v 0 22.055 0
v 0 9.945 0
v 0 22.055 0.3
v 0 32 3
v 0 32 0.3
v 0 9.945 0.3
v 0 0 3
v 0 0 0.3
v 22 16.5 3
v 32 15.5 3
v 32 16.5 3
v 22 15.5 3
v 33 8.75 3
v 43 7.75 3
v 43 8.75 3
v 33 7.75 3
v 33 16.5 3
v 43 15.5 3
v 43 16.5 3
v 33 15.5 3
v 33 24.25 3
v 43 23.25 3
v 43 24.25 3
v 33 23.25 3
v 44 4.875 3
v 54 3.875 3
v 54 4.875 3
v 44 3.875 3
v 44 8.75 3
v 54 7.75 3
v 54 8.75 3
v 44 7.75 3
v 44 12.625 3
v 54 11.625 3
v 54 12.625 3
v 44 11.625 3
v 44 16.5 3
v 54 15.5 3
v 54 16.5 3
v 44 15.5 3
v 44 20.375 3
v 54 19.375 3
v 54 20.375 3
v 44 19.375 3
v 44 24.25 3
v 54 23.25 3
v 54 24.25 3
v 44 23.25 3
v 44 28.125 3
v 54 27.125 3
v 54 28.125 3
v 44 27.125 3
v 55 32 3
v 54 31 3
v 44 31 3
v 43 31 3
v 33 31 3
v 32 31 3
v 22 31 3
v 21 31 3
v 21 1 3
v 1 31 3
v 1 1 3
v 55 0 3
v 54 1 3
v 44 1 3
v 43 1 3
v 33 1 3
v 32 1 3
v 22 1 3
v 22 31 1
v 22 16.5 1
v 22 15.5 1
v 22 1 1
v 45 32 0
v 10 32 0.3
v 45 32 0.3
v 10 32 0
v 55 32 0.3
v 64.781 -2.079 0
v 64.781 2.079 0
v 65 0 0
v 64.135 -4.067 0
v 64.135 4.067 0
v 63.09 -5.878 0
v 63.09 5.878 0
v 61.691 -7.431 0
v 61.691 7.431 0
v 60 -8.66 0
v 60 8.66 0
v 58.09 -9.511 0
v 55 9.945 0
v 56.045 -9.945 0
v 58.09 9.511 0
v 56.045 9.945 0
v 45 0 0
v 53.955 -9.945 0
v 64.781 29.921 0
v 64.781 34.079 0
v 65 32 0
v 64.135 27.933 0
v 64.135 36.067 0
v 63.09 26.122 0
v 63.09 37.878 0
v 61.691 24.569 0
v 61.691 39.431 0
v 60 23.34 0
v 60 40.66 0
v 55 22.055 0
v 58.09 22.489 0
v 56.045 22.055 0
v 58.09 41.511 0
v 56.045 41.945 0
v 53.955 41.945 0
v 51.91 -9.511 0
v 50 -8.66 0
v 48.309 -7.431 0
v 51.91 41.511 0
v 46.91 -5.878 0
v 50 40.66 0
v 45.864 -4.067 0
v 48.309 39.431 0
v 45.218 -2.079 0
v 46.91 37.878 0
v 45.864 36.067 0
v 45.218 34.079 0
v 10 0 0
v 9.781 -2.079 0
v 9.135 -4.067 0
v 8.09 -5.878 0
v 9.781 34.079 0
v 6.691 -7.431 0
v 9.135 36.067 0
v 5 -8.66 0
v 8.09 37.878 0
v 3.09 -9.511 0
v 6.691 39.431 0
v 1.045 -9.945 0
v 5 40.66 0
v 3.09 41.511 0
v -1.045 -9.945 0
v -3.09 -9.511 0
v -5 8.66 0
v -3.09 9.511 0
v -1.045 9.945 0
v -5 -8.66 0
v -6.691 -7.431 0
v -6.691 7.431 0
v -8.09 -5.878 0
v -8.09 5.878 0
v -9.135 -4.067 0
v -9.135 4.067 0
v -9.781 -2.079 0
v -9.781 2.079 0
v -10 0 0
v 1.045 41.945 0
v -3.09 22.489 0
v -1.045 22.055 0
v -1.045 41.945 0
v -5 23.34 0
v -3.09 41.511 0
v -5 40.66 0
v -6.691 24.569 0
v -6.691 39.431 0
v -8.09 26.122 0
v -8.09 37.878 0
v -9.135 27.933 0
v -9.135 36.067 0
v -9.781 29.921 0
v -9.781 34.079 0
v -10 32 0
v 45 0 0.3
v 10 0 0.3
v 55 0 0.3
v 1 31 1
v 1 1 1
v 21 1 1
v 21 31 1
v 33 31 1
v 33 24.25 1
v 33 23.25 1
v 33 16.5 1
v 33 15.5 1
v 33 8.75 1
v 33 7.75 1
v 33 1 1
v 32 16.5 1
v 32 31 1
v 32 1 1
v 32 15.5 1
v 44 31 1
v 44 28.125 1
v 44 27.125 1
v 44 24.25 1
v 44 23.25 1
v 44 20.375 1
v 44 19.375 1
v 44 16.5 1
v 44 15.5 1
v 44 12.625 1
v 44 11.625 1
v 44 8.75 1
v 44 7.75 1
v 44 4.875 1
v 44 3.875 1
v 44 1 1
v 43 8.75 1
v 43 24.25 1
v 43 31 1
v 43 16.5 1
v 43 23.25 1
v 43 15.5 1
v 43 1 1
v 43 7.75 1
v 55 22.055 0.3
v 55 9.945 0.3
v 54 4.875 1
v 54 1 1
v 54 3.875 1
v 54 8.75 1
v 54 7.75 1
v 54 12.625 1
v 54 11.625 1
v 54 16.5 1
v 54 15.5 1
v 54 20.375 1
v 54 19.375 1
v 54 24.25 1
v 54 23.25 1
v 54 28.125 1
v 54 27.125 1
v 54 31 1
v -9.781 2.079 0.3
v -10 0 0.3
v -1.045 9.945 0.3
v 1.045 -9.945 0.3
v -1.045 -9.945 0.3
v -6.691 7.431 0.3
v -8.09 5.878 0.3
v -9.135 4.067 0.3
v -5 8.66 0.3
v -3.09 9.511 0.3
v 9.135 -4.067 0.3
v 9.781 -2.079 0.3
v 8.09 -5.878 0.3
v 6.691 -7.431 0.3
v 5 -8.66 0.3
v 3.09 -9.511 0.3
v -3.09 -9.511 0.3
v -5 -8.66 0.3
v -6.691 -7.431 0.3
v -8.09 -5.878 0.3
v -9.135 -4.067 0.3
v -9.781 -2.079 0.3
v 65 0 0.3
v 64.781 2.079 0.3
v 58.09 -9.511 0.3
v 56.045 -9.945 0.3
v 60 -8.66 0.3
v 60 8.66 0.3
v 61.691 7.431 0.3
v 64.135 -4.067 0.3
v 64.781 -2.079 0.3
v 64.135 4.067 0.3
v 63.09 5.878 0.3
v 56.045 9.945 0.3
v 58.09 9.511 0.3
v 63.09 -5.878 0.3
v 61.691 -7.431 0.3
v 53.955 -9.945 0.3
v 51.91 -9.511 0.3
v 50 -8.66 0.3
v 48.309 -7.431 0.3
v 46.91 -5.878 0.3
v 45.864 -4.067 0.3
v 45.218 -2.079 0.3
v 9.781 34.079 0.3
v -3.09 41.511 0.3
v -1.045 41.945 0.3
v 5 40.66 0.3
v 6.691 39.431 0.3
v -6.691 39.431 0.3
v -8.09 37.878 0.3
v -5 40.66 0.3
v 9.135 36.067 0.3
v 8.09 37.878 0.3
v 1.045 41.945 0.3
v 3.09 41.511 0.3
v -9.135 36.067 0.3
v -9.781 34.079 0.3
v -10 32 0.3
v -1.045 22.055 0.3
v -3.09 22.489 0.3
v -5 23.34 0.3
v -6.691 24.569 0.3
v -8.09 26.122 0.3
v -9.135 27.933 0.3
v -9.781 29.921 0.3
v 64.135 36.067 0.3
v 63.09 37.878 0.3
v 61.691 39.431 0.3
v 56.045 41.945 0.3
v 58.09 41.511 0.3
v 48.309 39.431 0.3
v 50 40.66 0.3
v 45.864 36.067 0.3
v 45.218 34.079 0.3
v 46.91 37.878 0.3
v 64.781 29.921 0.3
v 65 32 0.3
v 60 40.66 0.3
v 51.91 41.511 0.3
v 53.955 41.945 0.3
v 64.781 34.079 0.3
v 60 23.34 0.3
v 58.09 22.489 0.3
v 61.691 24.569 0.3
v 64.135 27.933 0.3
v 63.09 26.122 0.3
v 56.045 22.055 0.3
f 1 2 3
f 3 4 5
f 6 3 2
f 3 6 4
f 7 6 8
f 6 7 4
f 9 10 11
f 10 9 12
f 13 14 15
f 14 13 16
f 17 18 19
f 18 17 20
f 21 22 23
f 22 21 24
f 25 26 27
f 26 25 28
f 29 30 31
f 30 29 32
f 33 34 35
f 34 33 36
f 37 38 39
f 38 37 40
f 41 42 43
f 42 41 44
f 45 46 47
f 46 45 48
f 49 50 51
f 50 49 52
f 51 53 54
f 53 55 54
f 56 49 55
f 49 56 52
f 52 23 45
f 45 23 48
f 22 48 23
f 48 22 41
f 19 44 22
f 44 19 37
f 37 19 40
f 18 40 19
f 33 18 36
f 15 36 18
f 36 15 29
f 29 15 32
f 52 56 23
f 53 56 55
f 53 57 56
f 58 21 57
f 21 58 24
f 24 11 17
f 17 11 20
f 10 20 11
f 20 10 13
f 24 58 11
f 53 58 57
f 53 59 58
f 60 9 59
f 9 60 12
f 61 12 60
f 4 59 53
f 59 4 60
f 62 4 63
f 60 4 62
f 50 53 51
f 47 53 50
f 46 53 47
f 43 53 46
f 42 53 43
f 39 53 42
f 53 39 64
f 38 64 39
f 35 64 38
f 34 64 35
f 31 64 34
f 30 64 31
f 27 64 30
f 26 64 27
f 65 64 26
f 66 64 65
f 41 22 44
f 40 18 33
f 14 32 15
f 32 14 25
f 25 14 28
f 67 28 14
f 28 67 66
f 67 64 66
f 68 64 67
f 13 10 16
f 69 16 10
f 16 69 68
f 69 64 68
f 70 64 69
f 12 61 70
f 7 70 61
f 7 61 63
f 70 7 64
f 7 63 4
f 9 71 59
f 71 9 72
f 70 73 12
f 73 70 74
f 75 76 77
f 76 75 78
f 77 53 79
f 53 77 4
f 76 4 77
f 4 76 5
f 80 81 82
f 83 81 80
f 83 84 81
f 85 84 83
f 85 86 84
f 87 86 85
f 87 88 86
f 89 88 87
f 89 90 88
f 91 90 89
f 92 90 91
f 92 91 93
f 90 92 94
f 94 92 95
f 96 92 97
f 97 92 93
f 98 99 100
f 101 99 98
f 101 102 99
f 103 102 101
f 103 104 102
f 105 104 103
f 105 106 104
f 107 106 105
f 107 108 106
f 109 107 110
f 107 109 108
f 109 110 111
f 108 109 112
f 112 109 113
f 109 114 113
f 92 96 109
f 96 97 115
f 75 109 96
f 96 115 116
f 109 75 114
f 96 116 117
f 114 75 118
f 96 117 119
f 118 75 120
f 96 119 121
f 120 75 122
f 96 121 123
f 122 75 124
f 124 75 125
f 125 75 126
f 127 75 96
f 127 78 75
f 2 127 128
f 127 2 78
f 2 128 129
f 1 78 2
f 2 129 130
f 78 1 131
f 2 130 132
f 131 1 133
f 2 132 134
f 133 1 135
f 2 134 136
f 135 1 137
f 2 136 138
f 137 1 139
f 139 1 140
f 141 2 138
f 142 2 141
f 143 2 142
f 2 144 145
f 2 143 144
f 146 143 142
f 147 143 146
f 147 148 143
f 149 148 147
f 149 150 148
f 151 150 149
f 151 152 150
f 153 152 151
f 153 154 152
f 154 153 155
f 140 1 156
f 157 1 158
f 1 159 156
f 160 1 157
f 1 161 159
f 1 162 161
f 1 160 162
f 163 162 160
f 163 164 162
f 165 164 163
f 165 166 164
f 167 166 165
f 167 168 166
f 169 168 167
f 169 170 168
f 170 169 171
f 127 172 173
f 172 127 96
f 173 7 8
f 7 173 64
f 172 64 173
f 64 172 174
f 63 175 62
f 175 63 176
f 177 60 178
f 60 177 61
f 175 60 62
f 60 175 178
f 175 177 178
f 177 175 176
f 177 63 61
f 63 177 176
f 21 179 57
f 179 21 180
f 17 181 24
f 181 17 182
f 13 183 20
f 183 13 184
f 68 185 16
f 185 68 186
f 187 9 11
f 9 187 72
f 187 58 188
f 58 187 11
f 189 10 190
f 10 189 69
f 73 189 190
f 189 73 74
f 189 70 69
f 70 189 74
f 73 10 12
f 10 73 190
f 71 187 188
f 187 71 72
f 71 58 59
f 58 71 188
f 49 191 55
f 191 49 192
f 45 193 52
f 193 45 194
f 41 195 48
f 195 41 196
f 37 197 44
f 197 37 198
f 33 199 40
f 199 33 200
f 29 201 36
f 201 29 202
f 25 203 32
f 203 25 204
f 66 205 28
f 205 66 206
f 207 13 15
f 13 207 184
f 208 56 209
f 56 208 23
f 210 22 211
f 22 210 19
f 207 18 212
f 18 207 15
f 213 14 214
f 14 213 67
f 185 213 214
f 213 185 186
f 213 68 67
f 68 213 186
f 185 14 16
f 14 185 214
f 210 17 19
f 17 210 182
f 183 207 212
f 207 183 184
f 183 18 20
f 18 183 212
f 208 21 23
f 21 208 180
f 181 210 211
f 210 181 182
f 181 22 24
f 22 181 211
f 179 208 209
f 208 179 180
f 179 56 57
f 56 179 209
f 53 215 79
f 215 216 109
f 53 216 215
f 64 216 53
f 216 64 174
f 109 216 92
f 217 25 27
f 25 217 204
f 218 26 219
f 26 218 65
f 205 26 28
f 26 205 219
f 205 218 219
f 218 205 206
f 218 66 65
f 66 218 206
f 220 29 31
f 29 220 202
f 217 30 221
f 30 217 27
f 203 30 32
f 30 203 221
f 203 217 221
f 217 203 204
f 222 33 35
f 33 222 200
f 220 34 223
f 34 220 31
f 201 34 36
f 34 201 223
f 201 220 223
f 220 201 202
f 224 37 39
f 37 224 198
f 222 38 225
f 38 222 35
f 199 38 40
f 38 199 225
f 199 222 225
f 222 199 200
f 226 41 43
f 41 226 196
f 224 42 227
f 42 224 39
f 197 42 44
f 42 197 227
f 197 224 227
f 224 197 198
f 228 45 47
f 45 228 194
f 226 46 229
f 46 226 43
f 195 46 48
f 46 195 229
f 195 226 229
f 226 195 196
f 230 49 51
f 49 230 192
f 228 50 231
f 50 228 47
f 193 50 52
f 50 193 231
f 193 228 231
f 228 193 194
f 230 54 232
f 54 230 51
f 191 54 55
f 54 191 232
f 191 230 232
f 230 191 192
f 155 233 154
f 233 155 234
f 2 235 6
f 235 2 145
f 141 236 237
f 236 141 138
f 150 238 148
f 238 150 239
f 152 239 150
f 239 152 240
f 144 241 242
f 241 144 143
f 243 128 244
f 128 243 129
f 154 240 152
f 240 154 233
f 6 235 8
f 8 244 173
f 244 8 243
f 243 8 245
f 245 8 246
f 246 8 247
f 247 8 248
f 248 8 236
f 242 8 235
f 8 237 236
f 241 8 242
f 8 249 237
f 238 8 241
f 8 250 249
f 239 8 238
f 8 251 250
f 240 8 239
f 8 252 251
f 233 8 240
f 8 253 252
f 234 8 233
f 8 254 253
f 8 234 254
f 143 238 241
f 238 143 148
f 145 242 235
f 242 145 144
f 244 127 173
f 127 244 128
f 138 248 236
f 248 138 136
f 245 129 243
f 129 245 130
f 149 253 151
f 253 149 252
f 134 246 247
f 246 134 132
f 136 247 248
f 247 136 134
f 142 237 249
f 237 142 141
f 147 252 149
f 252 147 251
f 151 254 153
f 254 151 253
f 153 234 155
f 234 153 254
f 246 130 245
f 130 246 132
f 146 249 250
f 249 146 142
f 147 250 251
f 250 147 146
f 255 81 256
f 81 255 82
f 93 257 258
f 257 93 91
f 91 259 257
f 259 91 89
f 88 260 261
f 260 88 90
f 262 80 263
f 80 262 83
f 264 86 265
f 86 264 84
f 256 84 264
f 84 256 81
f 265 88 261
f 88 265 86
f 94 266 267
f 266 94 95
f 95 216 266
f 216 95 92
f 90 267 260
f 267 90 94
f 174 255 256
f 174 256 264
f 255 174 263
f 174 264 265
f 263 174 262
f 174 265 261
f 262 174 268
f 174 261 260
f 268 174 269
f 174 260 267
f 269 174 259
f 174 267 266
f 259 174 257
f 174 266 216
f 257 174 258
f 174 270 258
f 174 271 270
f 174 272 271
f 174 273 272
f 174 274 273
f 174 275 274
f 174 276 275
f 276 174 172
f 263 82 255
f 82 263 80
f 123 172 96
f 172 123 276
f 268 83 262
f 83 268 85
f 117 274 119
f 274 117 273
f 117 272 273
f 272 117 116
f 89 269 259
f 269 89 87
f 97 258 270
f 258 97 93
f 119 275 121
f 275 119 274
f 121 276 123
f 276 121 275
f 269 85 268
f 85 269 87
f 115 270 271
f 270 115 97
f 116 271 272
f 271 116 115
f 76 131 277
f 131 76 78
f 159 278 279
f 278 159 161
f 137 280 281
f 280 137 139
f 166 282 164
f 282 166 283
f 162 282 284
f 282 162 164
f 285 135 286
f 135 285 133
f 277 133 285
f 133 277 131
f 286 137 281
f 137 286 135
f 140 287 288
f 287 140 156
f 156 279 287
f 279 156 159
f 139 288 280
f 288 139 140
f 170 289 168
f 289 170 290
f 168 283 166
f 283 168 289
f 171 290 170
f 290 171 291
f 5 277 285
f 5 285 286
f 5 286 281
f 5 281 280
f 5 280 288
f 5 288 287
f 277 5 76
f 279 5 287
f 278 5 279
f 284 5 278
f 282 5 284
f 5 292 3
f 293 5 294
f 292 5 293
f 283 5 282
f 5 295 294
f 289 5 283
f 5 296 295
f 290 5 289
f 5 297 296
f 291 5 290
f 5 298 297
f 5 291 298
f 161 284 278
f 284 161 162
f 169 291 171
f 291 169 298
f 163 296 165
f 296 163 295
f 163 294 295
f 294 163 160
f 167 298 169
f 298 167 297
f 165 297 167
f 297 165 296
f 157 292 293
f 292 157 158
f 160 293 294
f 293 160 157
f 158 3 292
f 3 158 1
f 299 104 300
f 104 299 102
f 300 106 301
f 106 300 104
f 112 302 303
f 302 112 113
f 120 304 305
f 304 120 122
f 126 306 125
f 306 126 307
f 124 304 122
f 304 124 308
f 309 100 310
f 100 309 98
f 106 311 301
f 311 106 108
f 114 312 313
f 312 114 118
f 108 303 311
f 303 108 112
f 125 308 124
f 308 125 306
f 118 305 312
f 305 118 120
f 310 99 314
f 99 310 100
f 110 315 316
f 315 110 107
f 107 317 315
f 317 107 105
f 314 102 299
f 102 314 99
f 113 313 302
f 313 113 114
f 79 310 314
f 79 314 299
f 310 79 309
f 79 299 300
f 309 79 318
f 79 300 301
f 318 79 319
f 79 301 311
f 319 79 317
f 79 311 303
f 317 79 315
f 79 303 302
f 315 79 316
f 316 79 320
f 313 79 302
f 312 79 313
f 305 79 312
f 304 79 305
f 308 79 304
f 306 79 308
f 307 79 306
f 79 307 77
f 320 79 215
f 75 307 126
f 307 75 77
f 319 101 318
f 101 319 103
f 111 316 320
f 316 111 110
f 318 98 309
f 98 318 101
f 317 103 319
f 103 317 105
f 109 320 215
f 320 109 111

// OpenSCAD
// file: inc/VectorMath_v2.scad
// VectorMath.scad
// Version 2
VectorMathVersion=2;
// Released to the Public Domain

// maxv  - return the maximum element in a vector
// usage   maxv(a-vector
//             <,<m=>a-minimum-start-value default=big-negative>  {usually not used}
//             <,<s=>a-working-variable-for-recursion-maybe-useful-to-start-later-in-vector-?>)
//				{zero based elements}
// example maxv([3,7,4,9,1,8]);  // = 9      maxv([-100,-50,5,-30]);  // = 5
function maxv(v,m=-999999999999,s=0) = (s==len(v) ? m : (m>v[s] ? maxv(v,m,s+1) : maxv(v,v[s],s+1)));


// minv  - return minimum element in a vector
// usage   minv(a-vector
//             <,<m=>a-maximum-start-value default=big-number>  {usually not used}
//             <,<s=>a-working-variable-for-recursion-maybe-useful-to-start-later-in-vector-?>)
//				{zero based elements}
// example minv([3,7,4,9,1,8]);  // = 1      minv([-100,-50,5,-30]);  // = -100
function minv(v,m=999999999999,s=0) = (s==len(v) ? m : (m<v[s] ? minv(v,m,s+1) : minv(v,v[s],s+1)));


// sumv  - sum the elements in a vector, up to an element #, or optionaly start at element #
// usage   sumv(a-vector)
//            
// example sumv([10,20,30,40]); // = 100   
//function sumv(v,i=0) = (i==len(v) ? 0 : v[i] + sumv(v,i+1));
function sumv(v,i,s=0) = (i==s ? v[i] : v[i] + sumv(v,i-1,s));

// sumvmin - sum the elements of a vector, but sum a minimum value
//           ie any element less than Min use Min instead
// usage     sumvmin(a-vector
//			       <,<l=>sum-to-this-element>   {use len(v)-1 for all}
//                 <,<s=>starting-element default=0>
//				   <,<m=>minimum-element-value>);  
//                  {zero based elements}
// example sumvmin([3,7,4,9,1,8],m=4); // = 36
//function sumvmin(v,l=0,s=0,m=-999999999999) = (s==len(v) ? 0 : ((l!=0 && s>l) ? 0 : max(v[s],m) + sumvmin(v,l,s+1,m)));
function sumvmin(v,l=0,s=0,m=-999999999999) = (l==s ? max(v[l],m) : max(v[s],m) + sumvmin(v,l,s+1,m));
// sumvmax - sum the elements of a vector, but sum a maximum value
//           ie any element greater than max use max instead
// usage     sumvmax(a-vector
//			       <,<l=>sum-to-this-element>	{use len(v)-1 for all}
//                 <,<s=>starting-element default=0>
//				   <,<m=>maximum-element-value>);  
//                  {zero based elements}
// simple call sumvmin(v,m=minimim);
// example sumvmax([3,7,4,9,1,8],m=7); // = 29
function sumvmax(v,l=0,s=0,m=-999999999999) = (l==s ? min(v[l],m) : min(v[s],m) + sumvmax(v,l,s+1,m));

// test VectorMath - next is normally 0 but can be set to 1 for testing
VectorMathTest=1;
if (VectorMathTest==1) TestVectorMath();

module TestVectorMath() {
	// 0,1,2,3,4,5 element #
	v=[7,3,9,3,5,6];
	//v=[[10,20],[30,40],[50,60]];
	vl=len(v);
	tot=0;
	echo(v, vl);
	echo("sum",sumv(v));
	echo("sum",sumv(v,vl-1));
	for (i= [0 : vl-1]) {
		echo("sum first",i,"elements",sumv(v,i));	
	}
	echo("sum 1-2",sumv(v,2,1));
	echo("sum 2-4",sumv(v,4,2));
	echo("sum 4-5",sumv(v,5,4));

	echo("max",maxv(v));
	echo("min",minv(v));

	echo(sumv([10,20,30,40],2)); // = 60      
	echo(sumv([10,20,30,40],3,2)); // = 70

	echo("sumvmin 5",sumvmin(v,vl-1,m=5));
	echo("sumvmin 2-4",sumvmin(v,4,2,5));
	echo("sumvmin([3,7,4,9,1,8],m=4)",sumvmin([3,7,4,9,1,8],vl-1,m=4));
	
	for (i = [0 : vl-1]) {
		echo("sumvmin first",i,"elements", sumvmin(v,i,m=4));
	}

	echo("sumvmax 7",sumvmax(v,vl-1,m=7));
	echo("sumvmax([3,7,4,9,1,8],m=7)",sumvmax([3,7,4,9,1,8],vl-1,m=7));
}
// file: inc/compartmentBox.scad
use <VectorMath_v2.scad>

module sup(r=10,lh=0.32) {
	cylinder(r=r, h=lh);
}

module box(x,y,z,wall) {
  difference() {
    translate([0,0,0]) cube([wall+x+wall,wall+y+wall,wall+z]);
    translate([wall,wall,wall]) cube([x,y,z+0.1]);
  }
}
//function sumv(v,i,s=0) = (i==s ? v[i] : v[i] + sumv(v,i-1,s));
function sumto(v,t) = (t==-1 ? 0 : v[t] + sumto(v,t-1));

//box(compx, compy, compz, wall);
module box_arr(compx, compy, compz, wall, countx, m, h) {
  for(x=[0:countx-1]) {
    //echo("x", x);
    box_count_in_y=h[x];
    //echo("box_count_in_y", box_count_in_y);
    box_size_in_y=(compy-wall*(box_count_in_y-1))/box_count_in_y;
    //echo("box_size_in_y", box_size_in_y);
    offset_in_x = sumto(m,x-1);
    //echo("offset_in_x", offset_in_x);
    for(y=[0:box_count_in_y-1]) {
      //box_x=compy/box_count_in_y;
      box_offset_in_y = y*box_size_in_y+y*wall;
      //echo("box_offset_in_y", box_offset_in_y);
      box_offset_in_x = offset_in_x*compx+wall*x;
      //echo("box_offset_in_x", box_offset_in_x);
      translate([box_offset_in_x,box_offset_in_y,0]) 
	    box(compx*m[x], box_size_in_y, compz, wall);
	}
  }
}

module box_arr_module(
	compx=10, // Size of compartments, X
	compy=30, // Size of compartments, Y
	compz=2,  // Hight of compartments
	countx=4, // count of compartments in X
	wall=1.00, // wall thickness
	lh=0.30,   // layer height
	m=[2,1,1,1,1,1,1,1,1,1,1,1], // compartment multiplier
	h=[1,2,4,8,1,1,1,1,1,1,1,1,1,1,1,1,1,1,1,1,1,1], // count of compartments
	supp_rad=10
) {
	translate([0,0,0]) 
	{
		box_arr(compx, compy, compz, wall,countx,m,h);
		// SUPPORT EDGES
		maxx=sumto(m,countx-1)*compx+wall*(countx+1);
		//echo("maxx",maxx);
		translate([0,0,0]) sup(r=supp_rad, lh=lh);
		translate([maxx,0,0]) sup(r=supp_rad, lh=lh);
		translate([0,compy+wall*2,0]) sup(r=supp_rad, lh=lh);
		translate([maxx,compy+wall*2,0]) sup(r=supp_rad, lh=lh);
		// 
		echo("box [x,y]",[compy, maxx]);
		echo("max_printer [x,y]",[ compy+supp_rad*2, maxx+supp_rad*2 ] );
	}	
}
// main file
use<inc/compartmentBox.scad>

//box(compx, compy, compz, wall);
//box(10,10,2,1);

//box_arr(compx, compy, compz, wall, countx, m, h);
//box_arr(10,30,2,1.00,3,[2,1,1],[1,2,4]);

//box_arr_module(
//  compx=10.0, // Size of compartments, X
//	compy=10, // Size of compartments, Y
//	compz=2, 
//	countx=3,
//	wall=1.00, //wall thickness
//	m=[1,1,1],
//	h=[2,2,2]
//  );
box_arr_module();
